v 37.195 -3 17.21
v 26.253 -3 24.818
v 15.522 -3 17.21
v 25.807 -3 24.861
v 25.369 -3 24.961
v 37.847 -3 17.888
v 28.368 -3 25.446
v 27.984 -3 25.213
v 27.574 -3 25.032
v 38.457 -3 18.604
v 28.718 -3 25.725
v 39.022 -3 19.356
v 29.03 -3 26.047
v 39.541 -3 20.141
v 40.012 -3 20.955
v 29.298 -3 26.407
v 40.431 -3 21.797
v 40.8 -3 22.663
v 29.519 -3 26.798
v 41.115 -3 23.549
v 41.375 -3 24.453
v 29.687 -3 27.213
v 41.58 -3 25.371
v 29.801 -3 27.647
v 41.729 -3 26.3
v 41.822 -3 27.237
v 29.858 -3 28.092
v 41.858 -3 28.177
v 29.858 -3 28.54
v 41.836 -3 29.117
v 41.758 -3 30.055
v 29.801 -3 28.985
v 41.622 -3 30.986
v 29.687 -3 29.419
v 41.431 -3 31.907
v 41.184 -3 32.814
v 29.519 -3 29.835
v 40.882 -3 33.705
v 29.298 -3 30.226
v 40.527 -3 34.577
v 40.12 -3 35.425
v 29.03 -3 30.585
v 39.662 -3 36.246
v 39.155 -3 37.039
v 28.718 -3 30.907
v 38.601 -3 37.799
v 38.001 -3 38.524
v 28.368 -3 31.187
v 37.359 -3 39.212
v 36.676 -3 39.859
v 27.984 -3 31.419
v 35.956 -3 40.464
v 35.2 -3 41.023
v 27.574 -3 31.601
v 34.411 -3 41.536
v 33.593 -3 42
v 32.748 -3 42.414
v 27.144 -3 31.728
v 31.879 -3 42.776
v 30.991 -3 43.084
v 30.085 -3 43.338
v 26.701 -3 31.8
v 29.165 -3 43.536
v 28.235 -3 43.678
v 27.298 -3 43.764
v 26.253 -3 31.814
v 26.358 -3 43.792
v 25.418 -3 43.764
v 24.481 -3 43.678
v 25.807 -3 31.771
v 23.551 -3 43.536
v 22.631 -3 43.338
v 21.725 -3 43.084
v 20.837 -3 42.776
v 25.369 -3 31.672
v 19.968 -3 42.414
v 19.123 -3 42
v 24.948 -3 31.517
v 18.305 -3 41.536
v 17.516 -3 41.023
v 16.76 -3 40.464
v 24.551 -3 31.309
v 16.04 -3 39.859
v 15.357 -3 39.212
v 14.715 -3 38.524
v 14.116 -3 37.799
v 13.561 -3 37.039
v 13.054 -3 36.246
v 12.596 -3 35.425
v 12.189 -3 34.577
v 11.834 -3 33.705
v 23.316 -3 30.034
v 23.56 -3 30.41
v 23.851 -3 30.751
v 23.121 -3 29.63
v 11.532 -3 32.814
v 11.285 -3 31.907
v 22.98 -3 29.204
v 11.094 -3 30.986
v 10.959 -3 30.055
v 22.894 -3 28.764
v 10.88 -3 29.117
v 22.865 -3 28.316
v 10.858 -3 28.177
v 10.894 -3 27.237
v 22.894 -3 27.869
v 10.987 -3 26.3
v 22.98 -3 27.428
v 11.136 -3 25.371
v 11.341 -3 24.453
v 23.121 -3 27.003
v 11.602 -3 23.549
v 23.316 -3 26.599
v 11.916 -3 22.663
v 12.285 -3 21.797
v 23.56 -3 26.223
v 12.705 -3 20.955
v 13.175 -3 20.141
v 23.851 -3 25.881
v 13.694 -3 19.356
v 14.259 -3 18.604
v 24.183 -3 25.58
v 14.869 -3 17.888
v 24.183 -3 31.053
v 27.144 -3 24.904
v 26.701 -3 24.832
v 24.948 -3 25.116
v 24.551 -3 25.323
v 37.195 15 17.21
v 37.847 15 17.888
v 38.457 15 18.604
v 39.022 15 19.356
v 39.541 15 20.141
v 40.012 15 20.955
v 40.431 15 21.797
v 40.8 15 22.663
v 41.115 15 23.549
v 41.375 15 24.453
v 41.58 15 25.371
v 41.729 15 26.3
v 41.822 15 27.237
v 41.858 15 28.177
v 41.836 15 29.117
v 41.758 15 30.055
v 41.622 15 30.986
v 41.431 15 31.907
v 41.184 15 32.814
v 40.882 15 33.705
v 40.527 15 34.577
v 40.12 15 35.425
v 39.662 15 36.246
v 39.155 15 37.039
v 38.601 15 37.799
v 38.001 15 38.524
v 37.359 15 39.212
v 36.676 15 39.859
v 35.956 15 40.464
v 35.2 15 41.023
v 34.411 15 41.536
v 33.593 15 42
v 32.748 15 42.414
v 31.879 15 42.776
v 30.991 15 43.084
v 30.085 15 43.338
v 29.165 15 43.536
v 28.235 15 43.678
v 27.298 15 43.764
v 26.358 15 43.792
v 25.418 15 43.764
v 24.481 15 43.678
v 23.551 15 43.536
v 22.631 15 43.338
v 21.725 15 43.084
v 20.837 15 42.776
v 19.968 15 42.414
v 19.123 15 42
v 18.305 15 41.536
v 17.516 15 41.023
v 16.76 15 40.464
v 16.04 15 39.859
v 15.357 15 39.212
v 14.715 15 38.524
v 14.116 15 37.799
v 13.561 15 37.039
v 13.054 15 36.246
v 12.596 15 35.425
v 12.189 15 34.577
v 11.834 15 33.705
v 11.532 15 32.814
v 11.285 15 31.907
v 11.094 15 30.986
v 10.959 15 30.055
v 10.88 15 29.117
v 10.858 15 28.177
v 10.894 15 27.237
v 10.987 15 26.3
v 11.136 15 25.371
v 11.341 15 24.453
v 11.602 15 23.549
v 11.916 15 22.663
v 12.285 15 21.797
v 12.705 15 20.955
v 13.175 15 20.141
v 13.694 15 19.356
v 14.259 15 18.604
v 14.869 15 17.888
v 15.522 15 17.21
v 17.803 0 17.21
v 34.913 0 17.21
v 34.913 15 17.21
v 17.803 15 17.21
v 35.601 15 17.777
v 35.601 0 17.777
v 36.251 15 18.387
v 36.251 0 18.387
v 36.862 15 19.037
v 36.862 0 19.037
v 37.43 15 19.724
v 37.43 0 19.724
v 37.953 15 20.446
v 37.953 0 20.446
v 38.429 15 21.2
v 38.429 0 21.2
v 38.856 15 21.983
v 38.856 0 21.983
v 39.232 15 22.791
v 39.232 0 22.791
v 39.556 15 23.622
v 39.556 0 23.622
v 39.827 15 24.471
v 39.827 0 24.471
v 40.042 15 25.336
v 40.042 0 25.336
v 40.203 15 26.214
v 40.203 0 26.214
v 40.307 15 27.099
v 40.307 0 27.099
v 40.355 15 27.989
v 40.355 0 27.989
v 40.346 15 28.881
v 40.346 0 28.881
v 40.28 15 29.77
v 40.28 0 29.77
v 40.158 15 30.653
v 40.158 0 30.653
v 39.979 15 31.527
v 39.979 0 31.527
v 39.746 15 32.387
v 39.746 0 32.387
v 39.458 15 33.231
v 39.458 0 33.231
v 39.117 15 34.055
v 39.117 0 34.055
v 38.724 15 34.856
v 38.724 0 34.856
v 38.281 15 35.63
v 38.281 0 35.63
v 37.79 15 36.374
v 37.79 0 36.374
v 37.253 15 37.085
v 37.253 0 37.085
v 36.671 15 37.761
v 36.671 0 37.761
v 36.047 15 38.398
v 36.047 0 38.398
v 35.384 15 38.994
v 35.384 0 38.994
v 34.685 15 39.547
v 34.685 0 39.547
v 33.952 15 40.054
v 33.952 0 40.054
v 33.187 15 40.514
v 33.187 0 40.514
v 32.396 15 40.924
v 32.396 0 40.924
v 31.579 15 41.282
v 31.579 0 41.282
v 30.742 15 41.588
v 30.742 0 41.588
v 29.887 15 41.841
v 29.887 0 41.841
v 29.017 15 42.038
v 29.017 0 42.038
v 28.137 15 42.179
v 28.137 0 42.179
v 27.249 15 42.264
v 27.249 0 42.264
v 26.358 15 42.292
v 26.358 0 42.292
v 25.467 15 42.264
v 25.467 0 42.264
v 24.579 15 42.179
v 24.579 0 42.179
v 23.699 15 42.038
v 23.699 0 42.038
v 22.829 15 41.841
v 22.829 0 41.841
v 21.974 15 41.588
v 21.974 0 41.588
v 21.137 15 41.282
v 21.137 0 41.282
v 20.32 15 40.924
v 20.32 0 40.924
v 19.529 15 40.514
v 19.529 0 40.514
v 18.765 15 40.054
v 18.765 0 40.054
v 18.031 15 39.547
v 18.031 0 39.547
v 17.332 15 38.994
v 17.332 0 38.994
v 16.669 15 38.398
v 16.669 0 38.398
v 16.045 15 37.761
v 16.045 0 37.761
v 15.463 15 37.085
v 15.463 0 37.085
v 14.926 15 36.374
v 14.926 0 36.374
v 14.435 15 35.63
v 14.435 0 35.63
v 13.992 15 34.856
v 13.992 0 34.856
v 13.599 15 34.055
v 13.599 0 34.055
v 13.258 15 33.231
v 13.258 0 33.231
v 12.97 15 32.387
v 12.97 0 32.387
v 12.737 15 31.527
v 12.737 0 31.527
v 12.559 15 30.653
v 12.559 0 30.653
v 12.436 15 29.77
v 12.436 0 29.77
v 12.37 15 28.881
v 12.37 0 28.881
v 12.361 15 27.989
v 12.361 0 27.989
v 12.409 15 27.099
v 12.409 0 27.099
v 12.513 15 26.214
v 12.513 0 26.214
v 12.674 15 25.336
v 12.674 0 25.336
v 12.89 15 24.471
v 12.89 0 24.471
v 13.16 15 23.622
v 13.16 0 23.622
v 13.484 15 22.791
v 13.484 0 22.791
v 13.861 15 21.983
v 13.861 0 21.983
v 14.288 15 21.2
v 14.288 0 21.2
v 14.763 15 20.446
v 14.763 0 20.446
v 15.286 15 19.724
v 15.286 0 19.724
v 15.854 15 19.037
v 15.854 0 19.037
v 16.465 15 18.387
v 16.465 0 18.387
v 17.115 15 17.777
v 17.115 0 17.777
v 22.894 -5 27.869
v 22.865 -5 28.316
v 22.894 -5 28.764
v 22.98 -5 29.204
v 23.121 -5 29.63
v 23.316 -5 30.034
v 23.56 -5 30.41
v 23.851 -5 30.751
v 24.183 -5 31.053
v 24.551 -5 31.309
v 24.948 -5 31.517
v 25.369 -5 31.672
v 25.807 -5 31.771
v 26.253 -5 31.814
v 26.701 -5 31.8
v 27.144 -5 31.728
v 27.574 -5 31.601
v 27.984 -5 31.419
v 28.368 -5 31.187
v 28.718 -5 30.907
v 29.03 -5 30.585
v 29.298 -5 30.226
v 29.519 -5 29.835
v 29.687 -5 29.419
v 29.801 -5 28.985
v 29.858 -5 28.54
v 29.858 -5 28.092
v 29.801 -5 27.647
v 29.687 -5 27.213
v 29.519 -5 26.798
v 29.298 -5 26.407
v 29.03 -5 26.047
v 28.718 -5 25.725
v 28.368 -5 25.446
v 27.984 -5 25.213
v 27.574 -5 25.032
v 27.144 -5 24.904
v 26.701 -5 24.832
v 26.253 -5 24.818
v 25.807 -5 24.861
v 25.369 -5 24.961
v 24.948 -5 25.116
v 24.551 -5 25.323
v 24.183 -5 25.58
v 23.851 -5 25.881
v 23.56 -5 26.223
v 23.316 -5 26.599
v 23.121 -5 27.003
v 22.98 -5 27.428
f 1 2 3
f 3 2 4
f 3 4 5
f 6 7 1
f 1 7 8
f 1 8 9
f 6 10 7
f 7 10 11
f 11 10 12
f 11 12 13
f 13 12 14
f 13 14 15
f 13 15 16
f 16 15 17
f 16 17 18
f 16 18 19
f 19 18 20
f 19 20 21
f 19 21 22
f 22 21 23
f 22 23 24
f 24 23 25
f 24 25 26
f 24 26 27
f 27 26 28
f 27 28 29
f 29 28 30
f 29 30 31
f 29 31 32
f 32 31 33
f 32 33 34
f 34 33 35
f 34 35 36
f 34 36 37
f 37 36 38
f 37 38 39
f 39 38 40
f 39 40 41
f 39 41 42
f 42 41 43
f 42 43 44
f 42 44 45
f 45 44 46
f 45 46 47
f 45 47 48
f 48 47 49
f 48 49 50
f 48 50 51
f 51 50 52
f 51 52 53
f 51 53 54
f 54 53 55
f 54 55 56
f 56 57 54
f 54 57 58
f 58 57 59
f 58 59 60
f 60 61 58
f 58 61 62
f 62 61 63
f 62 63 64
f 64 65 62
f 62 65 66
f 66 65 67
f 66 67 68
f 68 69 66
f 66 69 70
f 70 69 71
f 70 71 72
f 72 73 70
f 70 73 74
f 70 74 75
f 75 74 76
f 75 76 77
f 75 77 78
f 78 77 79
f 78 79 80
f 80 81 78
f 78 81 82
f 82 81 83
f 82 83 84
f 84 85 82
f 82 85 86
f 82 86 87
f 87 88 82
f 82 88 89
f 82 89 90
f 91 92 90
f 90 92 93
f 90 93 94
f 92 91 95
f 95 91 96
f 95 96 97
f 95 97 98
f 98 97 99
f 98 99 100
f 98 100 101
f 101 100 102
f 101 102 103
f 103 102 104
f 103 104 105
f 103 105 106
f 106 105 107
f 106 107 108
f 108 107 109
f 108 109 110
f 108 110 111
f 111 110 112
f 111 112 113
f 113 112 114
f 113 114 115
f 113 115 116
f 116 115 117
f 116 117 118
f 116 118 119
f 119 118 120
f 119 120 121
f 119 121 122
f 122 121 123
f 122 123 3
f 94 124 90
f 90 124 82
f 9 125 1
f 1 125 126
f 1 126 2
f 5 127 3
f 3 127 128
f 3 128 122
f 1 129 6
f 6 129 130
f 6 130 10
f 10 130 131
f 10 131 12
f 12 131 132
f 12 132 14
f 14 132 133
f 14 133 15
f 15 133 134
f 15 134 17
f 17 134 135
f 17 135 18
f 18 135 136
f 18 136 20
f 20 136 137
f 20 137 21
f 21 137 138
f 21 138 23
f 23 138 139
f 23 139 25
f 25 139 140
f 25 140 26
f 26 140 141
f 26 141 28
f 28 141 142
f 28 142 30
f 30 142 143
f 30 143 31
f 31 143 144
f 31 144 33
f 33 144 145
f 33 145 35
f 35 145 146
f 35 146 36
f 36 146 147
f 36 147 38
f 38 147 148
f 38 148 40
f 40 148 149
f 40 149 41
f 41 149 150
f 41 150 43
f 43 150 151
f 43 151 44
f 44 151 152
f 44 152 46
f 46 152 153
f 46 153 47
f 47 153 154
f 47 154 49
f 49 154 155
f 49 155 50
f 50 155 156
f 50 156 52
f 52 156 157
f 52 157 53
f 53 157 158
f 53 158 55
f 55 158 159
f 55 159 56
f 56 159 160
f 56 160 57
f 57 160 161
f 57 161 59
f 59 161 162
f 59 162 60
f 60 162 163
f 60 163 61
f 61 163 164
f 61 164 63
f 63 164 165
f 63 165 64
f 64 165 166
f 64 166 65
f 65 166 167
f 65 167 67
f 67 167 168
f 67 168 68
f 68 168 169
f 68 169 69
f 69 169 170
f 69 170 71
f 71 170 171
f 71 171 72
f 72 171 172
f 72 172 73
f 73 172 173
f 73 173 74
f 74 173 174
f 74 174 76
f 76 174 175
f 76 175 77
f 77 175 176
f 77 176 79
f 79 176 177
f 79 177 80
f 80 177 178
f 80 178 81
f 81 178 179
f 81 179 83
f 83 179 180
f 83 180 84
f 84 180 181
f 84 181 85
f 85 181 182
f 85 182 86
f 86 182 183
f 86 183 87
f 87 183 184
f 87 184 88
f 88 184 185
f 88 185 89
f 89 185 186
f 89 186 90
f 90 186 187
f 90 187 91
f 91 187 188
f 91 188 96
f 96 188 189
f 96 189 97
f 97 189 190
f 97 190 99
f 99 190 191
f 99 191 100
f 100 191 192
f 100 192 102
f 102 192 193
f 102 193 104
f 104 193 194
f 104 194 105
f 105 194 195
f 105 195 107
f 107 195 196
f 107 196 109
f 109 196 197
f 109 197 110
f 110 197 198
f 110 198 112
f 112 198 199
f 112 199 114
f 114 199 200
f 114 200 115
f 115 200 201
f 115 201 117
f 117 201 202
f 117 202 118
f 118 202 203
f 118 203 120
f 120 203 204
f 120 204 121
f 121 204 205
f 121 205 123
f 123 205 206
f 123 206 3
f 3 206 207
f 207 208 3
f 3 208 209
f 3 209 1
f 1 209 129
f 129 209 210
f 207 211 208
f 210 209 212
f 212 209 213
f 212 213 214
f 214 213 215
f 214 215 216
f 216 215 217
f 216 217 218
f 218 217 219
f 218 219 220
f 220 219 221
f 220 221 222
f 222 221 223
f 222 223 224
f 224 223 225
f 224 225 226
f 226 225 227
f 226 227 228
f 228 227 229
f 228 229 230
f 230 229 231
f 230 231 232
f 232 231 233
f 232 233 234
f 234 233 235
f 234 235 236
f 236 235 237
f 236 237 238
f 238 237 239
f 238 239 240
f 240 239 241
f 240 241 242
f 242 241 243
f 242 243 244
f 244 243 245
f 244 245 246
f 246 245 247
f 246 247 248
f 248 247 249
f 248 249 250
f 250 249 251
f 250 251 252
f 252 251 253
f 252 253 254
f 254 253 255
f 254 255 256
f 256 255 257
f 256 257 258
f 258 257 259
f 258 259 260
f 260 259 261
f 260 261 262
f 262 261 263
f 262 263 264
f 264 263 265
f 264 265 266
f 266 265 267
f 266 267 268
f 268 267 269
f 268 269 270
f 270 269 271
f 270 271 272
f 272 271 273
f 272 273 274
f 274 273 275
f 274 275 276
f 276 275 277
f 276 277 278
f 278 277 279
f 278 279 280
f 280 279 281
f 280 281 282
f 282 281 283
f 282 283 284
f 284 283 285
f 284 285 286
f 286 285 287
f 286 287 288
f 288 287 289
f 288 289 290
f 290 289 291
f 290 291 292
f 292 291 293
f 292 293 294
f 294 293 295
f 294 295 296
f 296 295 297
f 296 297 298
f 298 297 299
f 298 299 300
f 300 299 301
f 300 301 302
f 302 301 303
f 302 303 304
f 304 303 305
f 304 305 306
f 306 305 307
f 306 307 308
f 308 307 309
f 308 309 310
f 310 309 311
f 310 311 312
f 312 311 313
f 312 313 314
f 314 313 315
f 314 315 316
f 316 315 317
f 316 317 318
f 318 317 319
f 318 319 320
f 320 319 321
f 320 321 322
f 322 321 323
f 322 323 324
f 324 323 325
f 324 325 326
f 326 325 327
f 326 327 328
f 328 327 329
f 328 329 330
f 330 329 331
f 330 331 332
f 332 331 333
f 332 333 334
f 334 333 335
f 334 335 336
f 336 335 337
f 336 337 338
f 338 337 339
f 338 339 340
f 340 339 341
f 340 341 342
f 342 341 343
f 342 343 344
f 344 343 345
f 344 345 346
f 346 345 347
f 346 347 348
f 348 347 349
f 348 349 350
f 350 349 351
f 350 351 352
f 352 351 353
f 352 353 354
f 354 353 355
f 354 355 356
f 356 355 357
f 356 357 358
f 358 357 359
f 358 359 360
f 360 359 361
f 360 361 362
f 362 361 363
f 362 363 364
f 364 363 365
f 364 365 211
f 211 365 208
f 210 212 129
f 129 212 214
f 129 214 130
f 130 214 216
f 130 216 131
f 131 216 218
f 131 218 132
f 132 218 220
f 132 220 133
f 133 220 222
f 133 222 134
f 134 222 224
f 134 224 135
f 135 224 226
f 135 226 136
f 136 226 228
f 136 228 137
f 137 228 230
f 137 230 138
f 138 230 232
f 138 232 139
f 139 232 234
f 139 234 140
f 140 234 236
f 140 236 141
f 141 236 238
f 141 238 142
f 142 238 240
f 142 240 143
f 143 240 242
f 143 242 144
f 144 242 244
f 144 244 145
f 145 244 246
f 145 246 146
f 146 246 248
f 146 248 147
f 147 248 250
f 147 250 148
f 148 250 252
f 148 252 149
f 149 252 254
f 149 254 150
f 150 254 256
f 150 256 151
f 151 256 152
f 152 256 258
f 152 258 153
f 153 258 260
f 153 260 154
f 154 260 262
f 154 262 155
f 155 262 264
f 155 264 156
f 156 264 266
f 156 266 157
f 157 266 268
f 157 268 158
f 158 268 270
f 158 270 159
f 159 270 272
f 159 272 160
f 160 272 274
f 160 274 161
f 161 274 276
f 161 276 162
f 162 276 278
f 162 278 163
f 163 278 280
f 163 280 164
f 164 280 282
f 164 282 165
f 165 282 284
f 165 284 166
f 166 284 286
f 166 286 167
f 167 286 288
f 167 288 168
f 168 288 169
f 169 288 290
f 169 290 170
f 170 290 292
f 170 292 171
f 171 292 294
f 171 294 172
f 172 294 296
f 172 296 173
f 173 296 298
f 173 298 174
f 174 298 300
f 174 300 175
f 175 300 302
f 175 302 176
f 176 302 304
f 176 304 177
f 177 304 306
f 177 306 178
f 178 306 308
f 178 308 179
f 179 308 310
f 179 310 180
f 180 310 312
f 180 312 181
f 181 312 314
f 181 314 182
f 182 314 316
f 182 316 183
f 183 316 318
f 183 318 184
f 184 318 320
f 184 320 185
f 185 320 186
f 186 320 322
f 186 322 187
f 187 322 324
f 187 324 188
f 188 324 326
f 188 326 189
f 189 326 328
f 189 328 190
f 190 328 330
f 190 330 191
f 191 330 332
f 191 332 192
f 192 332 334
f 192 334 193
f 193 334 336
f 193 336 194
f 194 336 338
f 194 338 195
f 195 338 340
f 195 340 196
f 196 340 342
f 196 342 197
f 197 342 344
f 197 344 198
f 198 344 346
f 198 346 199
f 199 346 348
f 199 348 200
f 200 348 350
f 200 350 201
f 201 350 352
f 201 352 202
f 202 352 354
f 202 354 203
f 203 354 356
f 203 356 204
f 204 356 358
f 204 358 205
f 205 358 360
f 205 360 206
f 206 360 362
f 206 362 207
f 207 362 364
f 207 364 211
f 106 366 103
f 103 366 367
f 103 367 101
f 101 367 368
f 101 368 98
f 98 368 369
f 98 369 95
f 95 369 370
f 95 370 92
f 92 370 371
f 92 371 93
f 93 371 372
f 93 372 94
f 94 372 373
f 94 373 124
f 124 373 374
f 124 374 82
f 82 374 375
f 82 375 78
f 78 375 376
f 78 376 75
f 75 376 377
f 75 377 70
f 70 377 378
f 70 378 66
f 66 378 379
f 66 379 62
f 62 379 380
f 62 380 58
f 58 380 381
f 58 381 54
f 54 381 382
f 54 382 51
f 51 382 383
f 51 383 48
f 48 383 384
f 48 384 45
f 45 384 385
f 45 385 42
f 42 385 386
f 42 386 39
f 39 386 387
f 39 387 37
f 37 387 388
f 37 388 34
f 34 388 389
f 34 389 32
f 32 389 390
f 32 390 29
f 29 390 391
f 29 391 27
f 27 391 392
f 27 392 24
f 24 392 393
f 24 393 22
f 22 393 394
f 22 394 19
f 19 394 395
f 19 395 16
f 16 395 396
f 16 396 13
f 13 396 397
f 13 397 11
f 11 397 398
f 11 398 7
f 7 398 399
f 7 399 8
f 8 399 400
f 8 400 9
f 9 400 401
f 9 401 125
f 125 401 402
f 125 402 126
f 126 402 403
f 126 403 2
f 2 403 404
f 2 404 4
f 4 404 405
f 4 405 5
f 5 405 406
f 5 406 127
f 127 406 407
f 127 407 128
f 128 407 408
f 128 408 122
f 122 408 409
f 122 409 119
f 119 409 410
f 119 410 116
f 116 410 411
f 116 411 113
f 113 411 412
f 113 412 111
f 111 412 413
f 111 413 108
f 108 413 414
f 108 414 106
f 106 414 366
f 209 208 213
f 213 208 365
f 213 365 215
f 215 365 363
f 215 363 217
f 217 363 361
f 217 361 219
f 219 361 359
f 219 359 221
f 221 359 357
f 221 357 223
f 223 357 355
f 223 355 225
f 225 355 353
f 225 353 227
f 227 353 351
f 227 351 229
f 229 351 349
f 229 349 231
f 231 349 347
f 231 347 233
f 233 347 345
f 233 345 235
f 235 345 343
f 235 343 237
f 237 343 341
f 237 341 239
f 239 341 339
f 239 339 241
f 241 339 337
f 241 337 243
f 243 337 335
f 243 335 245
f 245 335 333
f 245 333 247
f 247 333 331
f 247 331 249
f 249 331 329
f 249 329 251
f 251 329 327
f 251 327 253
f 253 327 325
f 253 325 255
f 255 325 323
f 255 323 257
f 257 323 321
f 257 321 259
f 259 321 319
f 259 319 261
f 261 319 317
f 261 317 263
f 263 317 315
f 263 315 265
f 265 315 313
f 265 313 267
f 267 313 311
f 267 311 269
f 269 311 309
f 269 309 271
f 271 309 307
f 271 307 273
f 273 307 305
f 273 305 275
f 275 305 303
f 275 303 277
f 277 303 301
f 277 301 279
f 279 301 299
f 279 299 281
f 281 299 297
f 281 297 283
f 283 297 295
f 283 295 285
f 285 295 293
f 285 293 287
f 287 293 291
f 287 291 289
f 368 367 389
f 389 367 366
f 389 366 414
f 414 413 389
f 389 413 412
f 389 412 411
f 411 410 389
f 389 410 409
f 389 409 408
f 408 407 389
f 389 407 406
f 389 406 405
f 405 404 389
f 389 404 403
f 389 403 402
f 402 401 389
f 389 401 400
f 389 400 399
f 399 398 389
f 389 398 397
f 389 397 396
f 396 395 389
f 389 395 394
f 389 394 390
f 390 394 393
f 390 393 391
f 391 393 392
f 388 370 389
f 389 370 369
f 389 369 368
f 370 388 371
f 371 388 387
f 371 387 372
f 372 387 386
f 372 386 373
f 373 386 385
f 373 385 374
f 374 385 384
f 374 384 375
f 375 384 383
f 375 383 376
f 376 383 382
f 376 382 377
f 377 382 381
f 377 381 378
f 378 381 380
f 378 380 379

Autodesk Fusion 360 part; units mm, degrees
sketch "Sketch1" plane through (0, 0, 0) normal (0, 1, 0) x (1, 0, 0)
  circle A0 centre (26.358, -28.2925) radius 15.5
  line L0 (17.858, -15.331) -> (34.858, -15.331)
  circle A1 centre (26.358, -28.2925) radius 14
  line L1 (17.8035, -17.2101) -> (34.9126, -17.2101)
  line L2 (34.9126, -17.2101) -> (37.1946, -17.2101)
  line L3 (17.8035, -17.2101) -> (15.5215, -17.2101)
  dimension "d1" = 31
  dimension "d2" = 17
  dimension "d3" = 28
extrude "Extrude1" add sketch "Sketch1" along normal blind 15 contours A0 A1 L2 L3 makes body 1
extrude "Extrude2" add sketch "Sketch1" against normal blind 3 contours A0 A1 L2 L3 bodies 1
extrude "Extrude3" add sketch "Sketch1" against normal blind 3 contours A1 L1 bodies 1
sketch "Sketch2" plane through (0, 0, 0) normal (0, 1, 0) x (1, 0, 0)
  circle A0 centre (26.3651, -28.3162) radius 3.5
  dimension "d11" = 7
extrude "Extrude4" add sketch "Sketch2" against normal blind 5 separate body makes body 2
combine "Combine1" operation add target body 2 tool bodies 1
